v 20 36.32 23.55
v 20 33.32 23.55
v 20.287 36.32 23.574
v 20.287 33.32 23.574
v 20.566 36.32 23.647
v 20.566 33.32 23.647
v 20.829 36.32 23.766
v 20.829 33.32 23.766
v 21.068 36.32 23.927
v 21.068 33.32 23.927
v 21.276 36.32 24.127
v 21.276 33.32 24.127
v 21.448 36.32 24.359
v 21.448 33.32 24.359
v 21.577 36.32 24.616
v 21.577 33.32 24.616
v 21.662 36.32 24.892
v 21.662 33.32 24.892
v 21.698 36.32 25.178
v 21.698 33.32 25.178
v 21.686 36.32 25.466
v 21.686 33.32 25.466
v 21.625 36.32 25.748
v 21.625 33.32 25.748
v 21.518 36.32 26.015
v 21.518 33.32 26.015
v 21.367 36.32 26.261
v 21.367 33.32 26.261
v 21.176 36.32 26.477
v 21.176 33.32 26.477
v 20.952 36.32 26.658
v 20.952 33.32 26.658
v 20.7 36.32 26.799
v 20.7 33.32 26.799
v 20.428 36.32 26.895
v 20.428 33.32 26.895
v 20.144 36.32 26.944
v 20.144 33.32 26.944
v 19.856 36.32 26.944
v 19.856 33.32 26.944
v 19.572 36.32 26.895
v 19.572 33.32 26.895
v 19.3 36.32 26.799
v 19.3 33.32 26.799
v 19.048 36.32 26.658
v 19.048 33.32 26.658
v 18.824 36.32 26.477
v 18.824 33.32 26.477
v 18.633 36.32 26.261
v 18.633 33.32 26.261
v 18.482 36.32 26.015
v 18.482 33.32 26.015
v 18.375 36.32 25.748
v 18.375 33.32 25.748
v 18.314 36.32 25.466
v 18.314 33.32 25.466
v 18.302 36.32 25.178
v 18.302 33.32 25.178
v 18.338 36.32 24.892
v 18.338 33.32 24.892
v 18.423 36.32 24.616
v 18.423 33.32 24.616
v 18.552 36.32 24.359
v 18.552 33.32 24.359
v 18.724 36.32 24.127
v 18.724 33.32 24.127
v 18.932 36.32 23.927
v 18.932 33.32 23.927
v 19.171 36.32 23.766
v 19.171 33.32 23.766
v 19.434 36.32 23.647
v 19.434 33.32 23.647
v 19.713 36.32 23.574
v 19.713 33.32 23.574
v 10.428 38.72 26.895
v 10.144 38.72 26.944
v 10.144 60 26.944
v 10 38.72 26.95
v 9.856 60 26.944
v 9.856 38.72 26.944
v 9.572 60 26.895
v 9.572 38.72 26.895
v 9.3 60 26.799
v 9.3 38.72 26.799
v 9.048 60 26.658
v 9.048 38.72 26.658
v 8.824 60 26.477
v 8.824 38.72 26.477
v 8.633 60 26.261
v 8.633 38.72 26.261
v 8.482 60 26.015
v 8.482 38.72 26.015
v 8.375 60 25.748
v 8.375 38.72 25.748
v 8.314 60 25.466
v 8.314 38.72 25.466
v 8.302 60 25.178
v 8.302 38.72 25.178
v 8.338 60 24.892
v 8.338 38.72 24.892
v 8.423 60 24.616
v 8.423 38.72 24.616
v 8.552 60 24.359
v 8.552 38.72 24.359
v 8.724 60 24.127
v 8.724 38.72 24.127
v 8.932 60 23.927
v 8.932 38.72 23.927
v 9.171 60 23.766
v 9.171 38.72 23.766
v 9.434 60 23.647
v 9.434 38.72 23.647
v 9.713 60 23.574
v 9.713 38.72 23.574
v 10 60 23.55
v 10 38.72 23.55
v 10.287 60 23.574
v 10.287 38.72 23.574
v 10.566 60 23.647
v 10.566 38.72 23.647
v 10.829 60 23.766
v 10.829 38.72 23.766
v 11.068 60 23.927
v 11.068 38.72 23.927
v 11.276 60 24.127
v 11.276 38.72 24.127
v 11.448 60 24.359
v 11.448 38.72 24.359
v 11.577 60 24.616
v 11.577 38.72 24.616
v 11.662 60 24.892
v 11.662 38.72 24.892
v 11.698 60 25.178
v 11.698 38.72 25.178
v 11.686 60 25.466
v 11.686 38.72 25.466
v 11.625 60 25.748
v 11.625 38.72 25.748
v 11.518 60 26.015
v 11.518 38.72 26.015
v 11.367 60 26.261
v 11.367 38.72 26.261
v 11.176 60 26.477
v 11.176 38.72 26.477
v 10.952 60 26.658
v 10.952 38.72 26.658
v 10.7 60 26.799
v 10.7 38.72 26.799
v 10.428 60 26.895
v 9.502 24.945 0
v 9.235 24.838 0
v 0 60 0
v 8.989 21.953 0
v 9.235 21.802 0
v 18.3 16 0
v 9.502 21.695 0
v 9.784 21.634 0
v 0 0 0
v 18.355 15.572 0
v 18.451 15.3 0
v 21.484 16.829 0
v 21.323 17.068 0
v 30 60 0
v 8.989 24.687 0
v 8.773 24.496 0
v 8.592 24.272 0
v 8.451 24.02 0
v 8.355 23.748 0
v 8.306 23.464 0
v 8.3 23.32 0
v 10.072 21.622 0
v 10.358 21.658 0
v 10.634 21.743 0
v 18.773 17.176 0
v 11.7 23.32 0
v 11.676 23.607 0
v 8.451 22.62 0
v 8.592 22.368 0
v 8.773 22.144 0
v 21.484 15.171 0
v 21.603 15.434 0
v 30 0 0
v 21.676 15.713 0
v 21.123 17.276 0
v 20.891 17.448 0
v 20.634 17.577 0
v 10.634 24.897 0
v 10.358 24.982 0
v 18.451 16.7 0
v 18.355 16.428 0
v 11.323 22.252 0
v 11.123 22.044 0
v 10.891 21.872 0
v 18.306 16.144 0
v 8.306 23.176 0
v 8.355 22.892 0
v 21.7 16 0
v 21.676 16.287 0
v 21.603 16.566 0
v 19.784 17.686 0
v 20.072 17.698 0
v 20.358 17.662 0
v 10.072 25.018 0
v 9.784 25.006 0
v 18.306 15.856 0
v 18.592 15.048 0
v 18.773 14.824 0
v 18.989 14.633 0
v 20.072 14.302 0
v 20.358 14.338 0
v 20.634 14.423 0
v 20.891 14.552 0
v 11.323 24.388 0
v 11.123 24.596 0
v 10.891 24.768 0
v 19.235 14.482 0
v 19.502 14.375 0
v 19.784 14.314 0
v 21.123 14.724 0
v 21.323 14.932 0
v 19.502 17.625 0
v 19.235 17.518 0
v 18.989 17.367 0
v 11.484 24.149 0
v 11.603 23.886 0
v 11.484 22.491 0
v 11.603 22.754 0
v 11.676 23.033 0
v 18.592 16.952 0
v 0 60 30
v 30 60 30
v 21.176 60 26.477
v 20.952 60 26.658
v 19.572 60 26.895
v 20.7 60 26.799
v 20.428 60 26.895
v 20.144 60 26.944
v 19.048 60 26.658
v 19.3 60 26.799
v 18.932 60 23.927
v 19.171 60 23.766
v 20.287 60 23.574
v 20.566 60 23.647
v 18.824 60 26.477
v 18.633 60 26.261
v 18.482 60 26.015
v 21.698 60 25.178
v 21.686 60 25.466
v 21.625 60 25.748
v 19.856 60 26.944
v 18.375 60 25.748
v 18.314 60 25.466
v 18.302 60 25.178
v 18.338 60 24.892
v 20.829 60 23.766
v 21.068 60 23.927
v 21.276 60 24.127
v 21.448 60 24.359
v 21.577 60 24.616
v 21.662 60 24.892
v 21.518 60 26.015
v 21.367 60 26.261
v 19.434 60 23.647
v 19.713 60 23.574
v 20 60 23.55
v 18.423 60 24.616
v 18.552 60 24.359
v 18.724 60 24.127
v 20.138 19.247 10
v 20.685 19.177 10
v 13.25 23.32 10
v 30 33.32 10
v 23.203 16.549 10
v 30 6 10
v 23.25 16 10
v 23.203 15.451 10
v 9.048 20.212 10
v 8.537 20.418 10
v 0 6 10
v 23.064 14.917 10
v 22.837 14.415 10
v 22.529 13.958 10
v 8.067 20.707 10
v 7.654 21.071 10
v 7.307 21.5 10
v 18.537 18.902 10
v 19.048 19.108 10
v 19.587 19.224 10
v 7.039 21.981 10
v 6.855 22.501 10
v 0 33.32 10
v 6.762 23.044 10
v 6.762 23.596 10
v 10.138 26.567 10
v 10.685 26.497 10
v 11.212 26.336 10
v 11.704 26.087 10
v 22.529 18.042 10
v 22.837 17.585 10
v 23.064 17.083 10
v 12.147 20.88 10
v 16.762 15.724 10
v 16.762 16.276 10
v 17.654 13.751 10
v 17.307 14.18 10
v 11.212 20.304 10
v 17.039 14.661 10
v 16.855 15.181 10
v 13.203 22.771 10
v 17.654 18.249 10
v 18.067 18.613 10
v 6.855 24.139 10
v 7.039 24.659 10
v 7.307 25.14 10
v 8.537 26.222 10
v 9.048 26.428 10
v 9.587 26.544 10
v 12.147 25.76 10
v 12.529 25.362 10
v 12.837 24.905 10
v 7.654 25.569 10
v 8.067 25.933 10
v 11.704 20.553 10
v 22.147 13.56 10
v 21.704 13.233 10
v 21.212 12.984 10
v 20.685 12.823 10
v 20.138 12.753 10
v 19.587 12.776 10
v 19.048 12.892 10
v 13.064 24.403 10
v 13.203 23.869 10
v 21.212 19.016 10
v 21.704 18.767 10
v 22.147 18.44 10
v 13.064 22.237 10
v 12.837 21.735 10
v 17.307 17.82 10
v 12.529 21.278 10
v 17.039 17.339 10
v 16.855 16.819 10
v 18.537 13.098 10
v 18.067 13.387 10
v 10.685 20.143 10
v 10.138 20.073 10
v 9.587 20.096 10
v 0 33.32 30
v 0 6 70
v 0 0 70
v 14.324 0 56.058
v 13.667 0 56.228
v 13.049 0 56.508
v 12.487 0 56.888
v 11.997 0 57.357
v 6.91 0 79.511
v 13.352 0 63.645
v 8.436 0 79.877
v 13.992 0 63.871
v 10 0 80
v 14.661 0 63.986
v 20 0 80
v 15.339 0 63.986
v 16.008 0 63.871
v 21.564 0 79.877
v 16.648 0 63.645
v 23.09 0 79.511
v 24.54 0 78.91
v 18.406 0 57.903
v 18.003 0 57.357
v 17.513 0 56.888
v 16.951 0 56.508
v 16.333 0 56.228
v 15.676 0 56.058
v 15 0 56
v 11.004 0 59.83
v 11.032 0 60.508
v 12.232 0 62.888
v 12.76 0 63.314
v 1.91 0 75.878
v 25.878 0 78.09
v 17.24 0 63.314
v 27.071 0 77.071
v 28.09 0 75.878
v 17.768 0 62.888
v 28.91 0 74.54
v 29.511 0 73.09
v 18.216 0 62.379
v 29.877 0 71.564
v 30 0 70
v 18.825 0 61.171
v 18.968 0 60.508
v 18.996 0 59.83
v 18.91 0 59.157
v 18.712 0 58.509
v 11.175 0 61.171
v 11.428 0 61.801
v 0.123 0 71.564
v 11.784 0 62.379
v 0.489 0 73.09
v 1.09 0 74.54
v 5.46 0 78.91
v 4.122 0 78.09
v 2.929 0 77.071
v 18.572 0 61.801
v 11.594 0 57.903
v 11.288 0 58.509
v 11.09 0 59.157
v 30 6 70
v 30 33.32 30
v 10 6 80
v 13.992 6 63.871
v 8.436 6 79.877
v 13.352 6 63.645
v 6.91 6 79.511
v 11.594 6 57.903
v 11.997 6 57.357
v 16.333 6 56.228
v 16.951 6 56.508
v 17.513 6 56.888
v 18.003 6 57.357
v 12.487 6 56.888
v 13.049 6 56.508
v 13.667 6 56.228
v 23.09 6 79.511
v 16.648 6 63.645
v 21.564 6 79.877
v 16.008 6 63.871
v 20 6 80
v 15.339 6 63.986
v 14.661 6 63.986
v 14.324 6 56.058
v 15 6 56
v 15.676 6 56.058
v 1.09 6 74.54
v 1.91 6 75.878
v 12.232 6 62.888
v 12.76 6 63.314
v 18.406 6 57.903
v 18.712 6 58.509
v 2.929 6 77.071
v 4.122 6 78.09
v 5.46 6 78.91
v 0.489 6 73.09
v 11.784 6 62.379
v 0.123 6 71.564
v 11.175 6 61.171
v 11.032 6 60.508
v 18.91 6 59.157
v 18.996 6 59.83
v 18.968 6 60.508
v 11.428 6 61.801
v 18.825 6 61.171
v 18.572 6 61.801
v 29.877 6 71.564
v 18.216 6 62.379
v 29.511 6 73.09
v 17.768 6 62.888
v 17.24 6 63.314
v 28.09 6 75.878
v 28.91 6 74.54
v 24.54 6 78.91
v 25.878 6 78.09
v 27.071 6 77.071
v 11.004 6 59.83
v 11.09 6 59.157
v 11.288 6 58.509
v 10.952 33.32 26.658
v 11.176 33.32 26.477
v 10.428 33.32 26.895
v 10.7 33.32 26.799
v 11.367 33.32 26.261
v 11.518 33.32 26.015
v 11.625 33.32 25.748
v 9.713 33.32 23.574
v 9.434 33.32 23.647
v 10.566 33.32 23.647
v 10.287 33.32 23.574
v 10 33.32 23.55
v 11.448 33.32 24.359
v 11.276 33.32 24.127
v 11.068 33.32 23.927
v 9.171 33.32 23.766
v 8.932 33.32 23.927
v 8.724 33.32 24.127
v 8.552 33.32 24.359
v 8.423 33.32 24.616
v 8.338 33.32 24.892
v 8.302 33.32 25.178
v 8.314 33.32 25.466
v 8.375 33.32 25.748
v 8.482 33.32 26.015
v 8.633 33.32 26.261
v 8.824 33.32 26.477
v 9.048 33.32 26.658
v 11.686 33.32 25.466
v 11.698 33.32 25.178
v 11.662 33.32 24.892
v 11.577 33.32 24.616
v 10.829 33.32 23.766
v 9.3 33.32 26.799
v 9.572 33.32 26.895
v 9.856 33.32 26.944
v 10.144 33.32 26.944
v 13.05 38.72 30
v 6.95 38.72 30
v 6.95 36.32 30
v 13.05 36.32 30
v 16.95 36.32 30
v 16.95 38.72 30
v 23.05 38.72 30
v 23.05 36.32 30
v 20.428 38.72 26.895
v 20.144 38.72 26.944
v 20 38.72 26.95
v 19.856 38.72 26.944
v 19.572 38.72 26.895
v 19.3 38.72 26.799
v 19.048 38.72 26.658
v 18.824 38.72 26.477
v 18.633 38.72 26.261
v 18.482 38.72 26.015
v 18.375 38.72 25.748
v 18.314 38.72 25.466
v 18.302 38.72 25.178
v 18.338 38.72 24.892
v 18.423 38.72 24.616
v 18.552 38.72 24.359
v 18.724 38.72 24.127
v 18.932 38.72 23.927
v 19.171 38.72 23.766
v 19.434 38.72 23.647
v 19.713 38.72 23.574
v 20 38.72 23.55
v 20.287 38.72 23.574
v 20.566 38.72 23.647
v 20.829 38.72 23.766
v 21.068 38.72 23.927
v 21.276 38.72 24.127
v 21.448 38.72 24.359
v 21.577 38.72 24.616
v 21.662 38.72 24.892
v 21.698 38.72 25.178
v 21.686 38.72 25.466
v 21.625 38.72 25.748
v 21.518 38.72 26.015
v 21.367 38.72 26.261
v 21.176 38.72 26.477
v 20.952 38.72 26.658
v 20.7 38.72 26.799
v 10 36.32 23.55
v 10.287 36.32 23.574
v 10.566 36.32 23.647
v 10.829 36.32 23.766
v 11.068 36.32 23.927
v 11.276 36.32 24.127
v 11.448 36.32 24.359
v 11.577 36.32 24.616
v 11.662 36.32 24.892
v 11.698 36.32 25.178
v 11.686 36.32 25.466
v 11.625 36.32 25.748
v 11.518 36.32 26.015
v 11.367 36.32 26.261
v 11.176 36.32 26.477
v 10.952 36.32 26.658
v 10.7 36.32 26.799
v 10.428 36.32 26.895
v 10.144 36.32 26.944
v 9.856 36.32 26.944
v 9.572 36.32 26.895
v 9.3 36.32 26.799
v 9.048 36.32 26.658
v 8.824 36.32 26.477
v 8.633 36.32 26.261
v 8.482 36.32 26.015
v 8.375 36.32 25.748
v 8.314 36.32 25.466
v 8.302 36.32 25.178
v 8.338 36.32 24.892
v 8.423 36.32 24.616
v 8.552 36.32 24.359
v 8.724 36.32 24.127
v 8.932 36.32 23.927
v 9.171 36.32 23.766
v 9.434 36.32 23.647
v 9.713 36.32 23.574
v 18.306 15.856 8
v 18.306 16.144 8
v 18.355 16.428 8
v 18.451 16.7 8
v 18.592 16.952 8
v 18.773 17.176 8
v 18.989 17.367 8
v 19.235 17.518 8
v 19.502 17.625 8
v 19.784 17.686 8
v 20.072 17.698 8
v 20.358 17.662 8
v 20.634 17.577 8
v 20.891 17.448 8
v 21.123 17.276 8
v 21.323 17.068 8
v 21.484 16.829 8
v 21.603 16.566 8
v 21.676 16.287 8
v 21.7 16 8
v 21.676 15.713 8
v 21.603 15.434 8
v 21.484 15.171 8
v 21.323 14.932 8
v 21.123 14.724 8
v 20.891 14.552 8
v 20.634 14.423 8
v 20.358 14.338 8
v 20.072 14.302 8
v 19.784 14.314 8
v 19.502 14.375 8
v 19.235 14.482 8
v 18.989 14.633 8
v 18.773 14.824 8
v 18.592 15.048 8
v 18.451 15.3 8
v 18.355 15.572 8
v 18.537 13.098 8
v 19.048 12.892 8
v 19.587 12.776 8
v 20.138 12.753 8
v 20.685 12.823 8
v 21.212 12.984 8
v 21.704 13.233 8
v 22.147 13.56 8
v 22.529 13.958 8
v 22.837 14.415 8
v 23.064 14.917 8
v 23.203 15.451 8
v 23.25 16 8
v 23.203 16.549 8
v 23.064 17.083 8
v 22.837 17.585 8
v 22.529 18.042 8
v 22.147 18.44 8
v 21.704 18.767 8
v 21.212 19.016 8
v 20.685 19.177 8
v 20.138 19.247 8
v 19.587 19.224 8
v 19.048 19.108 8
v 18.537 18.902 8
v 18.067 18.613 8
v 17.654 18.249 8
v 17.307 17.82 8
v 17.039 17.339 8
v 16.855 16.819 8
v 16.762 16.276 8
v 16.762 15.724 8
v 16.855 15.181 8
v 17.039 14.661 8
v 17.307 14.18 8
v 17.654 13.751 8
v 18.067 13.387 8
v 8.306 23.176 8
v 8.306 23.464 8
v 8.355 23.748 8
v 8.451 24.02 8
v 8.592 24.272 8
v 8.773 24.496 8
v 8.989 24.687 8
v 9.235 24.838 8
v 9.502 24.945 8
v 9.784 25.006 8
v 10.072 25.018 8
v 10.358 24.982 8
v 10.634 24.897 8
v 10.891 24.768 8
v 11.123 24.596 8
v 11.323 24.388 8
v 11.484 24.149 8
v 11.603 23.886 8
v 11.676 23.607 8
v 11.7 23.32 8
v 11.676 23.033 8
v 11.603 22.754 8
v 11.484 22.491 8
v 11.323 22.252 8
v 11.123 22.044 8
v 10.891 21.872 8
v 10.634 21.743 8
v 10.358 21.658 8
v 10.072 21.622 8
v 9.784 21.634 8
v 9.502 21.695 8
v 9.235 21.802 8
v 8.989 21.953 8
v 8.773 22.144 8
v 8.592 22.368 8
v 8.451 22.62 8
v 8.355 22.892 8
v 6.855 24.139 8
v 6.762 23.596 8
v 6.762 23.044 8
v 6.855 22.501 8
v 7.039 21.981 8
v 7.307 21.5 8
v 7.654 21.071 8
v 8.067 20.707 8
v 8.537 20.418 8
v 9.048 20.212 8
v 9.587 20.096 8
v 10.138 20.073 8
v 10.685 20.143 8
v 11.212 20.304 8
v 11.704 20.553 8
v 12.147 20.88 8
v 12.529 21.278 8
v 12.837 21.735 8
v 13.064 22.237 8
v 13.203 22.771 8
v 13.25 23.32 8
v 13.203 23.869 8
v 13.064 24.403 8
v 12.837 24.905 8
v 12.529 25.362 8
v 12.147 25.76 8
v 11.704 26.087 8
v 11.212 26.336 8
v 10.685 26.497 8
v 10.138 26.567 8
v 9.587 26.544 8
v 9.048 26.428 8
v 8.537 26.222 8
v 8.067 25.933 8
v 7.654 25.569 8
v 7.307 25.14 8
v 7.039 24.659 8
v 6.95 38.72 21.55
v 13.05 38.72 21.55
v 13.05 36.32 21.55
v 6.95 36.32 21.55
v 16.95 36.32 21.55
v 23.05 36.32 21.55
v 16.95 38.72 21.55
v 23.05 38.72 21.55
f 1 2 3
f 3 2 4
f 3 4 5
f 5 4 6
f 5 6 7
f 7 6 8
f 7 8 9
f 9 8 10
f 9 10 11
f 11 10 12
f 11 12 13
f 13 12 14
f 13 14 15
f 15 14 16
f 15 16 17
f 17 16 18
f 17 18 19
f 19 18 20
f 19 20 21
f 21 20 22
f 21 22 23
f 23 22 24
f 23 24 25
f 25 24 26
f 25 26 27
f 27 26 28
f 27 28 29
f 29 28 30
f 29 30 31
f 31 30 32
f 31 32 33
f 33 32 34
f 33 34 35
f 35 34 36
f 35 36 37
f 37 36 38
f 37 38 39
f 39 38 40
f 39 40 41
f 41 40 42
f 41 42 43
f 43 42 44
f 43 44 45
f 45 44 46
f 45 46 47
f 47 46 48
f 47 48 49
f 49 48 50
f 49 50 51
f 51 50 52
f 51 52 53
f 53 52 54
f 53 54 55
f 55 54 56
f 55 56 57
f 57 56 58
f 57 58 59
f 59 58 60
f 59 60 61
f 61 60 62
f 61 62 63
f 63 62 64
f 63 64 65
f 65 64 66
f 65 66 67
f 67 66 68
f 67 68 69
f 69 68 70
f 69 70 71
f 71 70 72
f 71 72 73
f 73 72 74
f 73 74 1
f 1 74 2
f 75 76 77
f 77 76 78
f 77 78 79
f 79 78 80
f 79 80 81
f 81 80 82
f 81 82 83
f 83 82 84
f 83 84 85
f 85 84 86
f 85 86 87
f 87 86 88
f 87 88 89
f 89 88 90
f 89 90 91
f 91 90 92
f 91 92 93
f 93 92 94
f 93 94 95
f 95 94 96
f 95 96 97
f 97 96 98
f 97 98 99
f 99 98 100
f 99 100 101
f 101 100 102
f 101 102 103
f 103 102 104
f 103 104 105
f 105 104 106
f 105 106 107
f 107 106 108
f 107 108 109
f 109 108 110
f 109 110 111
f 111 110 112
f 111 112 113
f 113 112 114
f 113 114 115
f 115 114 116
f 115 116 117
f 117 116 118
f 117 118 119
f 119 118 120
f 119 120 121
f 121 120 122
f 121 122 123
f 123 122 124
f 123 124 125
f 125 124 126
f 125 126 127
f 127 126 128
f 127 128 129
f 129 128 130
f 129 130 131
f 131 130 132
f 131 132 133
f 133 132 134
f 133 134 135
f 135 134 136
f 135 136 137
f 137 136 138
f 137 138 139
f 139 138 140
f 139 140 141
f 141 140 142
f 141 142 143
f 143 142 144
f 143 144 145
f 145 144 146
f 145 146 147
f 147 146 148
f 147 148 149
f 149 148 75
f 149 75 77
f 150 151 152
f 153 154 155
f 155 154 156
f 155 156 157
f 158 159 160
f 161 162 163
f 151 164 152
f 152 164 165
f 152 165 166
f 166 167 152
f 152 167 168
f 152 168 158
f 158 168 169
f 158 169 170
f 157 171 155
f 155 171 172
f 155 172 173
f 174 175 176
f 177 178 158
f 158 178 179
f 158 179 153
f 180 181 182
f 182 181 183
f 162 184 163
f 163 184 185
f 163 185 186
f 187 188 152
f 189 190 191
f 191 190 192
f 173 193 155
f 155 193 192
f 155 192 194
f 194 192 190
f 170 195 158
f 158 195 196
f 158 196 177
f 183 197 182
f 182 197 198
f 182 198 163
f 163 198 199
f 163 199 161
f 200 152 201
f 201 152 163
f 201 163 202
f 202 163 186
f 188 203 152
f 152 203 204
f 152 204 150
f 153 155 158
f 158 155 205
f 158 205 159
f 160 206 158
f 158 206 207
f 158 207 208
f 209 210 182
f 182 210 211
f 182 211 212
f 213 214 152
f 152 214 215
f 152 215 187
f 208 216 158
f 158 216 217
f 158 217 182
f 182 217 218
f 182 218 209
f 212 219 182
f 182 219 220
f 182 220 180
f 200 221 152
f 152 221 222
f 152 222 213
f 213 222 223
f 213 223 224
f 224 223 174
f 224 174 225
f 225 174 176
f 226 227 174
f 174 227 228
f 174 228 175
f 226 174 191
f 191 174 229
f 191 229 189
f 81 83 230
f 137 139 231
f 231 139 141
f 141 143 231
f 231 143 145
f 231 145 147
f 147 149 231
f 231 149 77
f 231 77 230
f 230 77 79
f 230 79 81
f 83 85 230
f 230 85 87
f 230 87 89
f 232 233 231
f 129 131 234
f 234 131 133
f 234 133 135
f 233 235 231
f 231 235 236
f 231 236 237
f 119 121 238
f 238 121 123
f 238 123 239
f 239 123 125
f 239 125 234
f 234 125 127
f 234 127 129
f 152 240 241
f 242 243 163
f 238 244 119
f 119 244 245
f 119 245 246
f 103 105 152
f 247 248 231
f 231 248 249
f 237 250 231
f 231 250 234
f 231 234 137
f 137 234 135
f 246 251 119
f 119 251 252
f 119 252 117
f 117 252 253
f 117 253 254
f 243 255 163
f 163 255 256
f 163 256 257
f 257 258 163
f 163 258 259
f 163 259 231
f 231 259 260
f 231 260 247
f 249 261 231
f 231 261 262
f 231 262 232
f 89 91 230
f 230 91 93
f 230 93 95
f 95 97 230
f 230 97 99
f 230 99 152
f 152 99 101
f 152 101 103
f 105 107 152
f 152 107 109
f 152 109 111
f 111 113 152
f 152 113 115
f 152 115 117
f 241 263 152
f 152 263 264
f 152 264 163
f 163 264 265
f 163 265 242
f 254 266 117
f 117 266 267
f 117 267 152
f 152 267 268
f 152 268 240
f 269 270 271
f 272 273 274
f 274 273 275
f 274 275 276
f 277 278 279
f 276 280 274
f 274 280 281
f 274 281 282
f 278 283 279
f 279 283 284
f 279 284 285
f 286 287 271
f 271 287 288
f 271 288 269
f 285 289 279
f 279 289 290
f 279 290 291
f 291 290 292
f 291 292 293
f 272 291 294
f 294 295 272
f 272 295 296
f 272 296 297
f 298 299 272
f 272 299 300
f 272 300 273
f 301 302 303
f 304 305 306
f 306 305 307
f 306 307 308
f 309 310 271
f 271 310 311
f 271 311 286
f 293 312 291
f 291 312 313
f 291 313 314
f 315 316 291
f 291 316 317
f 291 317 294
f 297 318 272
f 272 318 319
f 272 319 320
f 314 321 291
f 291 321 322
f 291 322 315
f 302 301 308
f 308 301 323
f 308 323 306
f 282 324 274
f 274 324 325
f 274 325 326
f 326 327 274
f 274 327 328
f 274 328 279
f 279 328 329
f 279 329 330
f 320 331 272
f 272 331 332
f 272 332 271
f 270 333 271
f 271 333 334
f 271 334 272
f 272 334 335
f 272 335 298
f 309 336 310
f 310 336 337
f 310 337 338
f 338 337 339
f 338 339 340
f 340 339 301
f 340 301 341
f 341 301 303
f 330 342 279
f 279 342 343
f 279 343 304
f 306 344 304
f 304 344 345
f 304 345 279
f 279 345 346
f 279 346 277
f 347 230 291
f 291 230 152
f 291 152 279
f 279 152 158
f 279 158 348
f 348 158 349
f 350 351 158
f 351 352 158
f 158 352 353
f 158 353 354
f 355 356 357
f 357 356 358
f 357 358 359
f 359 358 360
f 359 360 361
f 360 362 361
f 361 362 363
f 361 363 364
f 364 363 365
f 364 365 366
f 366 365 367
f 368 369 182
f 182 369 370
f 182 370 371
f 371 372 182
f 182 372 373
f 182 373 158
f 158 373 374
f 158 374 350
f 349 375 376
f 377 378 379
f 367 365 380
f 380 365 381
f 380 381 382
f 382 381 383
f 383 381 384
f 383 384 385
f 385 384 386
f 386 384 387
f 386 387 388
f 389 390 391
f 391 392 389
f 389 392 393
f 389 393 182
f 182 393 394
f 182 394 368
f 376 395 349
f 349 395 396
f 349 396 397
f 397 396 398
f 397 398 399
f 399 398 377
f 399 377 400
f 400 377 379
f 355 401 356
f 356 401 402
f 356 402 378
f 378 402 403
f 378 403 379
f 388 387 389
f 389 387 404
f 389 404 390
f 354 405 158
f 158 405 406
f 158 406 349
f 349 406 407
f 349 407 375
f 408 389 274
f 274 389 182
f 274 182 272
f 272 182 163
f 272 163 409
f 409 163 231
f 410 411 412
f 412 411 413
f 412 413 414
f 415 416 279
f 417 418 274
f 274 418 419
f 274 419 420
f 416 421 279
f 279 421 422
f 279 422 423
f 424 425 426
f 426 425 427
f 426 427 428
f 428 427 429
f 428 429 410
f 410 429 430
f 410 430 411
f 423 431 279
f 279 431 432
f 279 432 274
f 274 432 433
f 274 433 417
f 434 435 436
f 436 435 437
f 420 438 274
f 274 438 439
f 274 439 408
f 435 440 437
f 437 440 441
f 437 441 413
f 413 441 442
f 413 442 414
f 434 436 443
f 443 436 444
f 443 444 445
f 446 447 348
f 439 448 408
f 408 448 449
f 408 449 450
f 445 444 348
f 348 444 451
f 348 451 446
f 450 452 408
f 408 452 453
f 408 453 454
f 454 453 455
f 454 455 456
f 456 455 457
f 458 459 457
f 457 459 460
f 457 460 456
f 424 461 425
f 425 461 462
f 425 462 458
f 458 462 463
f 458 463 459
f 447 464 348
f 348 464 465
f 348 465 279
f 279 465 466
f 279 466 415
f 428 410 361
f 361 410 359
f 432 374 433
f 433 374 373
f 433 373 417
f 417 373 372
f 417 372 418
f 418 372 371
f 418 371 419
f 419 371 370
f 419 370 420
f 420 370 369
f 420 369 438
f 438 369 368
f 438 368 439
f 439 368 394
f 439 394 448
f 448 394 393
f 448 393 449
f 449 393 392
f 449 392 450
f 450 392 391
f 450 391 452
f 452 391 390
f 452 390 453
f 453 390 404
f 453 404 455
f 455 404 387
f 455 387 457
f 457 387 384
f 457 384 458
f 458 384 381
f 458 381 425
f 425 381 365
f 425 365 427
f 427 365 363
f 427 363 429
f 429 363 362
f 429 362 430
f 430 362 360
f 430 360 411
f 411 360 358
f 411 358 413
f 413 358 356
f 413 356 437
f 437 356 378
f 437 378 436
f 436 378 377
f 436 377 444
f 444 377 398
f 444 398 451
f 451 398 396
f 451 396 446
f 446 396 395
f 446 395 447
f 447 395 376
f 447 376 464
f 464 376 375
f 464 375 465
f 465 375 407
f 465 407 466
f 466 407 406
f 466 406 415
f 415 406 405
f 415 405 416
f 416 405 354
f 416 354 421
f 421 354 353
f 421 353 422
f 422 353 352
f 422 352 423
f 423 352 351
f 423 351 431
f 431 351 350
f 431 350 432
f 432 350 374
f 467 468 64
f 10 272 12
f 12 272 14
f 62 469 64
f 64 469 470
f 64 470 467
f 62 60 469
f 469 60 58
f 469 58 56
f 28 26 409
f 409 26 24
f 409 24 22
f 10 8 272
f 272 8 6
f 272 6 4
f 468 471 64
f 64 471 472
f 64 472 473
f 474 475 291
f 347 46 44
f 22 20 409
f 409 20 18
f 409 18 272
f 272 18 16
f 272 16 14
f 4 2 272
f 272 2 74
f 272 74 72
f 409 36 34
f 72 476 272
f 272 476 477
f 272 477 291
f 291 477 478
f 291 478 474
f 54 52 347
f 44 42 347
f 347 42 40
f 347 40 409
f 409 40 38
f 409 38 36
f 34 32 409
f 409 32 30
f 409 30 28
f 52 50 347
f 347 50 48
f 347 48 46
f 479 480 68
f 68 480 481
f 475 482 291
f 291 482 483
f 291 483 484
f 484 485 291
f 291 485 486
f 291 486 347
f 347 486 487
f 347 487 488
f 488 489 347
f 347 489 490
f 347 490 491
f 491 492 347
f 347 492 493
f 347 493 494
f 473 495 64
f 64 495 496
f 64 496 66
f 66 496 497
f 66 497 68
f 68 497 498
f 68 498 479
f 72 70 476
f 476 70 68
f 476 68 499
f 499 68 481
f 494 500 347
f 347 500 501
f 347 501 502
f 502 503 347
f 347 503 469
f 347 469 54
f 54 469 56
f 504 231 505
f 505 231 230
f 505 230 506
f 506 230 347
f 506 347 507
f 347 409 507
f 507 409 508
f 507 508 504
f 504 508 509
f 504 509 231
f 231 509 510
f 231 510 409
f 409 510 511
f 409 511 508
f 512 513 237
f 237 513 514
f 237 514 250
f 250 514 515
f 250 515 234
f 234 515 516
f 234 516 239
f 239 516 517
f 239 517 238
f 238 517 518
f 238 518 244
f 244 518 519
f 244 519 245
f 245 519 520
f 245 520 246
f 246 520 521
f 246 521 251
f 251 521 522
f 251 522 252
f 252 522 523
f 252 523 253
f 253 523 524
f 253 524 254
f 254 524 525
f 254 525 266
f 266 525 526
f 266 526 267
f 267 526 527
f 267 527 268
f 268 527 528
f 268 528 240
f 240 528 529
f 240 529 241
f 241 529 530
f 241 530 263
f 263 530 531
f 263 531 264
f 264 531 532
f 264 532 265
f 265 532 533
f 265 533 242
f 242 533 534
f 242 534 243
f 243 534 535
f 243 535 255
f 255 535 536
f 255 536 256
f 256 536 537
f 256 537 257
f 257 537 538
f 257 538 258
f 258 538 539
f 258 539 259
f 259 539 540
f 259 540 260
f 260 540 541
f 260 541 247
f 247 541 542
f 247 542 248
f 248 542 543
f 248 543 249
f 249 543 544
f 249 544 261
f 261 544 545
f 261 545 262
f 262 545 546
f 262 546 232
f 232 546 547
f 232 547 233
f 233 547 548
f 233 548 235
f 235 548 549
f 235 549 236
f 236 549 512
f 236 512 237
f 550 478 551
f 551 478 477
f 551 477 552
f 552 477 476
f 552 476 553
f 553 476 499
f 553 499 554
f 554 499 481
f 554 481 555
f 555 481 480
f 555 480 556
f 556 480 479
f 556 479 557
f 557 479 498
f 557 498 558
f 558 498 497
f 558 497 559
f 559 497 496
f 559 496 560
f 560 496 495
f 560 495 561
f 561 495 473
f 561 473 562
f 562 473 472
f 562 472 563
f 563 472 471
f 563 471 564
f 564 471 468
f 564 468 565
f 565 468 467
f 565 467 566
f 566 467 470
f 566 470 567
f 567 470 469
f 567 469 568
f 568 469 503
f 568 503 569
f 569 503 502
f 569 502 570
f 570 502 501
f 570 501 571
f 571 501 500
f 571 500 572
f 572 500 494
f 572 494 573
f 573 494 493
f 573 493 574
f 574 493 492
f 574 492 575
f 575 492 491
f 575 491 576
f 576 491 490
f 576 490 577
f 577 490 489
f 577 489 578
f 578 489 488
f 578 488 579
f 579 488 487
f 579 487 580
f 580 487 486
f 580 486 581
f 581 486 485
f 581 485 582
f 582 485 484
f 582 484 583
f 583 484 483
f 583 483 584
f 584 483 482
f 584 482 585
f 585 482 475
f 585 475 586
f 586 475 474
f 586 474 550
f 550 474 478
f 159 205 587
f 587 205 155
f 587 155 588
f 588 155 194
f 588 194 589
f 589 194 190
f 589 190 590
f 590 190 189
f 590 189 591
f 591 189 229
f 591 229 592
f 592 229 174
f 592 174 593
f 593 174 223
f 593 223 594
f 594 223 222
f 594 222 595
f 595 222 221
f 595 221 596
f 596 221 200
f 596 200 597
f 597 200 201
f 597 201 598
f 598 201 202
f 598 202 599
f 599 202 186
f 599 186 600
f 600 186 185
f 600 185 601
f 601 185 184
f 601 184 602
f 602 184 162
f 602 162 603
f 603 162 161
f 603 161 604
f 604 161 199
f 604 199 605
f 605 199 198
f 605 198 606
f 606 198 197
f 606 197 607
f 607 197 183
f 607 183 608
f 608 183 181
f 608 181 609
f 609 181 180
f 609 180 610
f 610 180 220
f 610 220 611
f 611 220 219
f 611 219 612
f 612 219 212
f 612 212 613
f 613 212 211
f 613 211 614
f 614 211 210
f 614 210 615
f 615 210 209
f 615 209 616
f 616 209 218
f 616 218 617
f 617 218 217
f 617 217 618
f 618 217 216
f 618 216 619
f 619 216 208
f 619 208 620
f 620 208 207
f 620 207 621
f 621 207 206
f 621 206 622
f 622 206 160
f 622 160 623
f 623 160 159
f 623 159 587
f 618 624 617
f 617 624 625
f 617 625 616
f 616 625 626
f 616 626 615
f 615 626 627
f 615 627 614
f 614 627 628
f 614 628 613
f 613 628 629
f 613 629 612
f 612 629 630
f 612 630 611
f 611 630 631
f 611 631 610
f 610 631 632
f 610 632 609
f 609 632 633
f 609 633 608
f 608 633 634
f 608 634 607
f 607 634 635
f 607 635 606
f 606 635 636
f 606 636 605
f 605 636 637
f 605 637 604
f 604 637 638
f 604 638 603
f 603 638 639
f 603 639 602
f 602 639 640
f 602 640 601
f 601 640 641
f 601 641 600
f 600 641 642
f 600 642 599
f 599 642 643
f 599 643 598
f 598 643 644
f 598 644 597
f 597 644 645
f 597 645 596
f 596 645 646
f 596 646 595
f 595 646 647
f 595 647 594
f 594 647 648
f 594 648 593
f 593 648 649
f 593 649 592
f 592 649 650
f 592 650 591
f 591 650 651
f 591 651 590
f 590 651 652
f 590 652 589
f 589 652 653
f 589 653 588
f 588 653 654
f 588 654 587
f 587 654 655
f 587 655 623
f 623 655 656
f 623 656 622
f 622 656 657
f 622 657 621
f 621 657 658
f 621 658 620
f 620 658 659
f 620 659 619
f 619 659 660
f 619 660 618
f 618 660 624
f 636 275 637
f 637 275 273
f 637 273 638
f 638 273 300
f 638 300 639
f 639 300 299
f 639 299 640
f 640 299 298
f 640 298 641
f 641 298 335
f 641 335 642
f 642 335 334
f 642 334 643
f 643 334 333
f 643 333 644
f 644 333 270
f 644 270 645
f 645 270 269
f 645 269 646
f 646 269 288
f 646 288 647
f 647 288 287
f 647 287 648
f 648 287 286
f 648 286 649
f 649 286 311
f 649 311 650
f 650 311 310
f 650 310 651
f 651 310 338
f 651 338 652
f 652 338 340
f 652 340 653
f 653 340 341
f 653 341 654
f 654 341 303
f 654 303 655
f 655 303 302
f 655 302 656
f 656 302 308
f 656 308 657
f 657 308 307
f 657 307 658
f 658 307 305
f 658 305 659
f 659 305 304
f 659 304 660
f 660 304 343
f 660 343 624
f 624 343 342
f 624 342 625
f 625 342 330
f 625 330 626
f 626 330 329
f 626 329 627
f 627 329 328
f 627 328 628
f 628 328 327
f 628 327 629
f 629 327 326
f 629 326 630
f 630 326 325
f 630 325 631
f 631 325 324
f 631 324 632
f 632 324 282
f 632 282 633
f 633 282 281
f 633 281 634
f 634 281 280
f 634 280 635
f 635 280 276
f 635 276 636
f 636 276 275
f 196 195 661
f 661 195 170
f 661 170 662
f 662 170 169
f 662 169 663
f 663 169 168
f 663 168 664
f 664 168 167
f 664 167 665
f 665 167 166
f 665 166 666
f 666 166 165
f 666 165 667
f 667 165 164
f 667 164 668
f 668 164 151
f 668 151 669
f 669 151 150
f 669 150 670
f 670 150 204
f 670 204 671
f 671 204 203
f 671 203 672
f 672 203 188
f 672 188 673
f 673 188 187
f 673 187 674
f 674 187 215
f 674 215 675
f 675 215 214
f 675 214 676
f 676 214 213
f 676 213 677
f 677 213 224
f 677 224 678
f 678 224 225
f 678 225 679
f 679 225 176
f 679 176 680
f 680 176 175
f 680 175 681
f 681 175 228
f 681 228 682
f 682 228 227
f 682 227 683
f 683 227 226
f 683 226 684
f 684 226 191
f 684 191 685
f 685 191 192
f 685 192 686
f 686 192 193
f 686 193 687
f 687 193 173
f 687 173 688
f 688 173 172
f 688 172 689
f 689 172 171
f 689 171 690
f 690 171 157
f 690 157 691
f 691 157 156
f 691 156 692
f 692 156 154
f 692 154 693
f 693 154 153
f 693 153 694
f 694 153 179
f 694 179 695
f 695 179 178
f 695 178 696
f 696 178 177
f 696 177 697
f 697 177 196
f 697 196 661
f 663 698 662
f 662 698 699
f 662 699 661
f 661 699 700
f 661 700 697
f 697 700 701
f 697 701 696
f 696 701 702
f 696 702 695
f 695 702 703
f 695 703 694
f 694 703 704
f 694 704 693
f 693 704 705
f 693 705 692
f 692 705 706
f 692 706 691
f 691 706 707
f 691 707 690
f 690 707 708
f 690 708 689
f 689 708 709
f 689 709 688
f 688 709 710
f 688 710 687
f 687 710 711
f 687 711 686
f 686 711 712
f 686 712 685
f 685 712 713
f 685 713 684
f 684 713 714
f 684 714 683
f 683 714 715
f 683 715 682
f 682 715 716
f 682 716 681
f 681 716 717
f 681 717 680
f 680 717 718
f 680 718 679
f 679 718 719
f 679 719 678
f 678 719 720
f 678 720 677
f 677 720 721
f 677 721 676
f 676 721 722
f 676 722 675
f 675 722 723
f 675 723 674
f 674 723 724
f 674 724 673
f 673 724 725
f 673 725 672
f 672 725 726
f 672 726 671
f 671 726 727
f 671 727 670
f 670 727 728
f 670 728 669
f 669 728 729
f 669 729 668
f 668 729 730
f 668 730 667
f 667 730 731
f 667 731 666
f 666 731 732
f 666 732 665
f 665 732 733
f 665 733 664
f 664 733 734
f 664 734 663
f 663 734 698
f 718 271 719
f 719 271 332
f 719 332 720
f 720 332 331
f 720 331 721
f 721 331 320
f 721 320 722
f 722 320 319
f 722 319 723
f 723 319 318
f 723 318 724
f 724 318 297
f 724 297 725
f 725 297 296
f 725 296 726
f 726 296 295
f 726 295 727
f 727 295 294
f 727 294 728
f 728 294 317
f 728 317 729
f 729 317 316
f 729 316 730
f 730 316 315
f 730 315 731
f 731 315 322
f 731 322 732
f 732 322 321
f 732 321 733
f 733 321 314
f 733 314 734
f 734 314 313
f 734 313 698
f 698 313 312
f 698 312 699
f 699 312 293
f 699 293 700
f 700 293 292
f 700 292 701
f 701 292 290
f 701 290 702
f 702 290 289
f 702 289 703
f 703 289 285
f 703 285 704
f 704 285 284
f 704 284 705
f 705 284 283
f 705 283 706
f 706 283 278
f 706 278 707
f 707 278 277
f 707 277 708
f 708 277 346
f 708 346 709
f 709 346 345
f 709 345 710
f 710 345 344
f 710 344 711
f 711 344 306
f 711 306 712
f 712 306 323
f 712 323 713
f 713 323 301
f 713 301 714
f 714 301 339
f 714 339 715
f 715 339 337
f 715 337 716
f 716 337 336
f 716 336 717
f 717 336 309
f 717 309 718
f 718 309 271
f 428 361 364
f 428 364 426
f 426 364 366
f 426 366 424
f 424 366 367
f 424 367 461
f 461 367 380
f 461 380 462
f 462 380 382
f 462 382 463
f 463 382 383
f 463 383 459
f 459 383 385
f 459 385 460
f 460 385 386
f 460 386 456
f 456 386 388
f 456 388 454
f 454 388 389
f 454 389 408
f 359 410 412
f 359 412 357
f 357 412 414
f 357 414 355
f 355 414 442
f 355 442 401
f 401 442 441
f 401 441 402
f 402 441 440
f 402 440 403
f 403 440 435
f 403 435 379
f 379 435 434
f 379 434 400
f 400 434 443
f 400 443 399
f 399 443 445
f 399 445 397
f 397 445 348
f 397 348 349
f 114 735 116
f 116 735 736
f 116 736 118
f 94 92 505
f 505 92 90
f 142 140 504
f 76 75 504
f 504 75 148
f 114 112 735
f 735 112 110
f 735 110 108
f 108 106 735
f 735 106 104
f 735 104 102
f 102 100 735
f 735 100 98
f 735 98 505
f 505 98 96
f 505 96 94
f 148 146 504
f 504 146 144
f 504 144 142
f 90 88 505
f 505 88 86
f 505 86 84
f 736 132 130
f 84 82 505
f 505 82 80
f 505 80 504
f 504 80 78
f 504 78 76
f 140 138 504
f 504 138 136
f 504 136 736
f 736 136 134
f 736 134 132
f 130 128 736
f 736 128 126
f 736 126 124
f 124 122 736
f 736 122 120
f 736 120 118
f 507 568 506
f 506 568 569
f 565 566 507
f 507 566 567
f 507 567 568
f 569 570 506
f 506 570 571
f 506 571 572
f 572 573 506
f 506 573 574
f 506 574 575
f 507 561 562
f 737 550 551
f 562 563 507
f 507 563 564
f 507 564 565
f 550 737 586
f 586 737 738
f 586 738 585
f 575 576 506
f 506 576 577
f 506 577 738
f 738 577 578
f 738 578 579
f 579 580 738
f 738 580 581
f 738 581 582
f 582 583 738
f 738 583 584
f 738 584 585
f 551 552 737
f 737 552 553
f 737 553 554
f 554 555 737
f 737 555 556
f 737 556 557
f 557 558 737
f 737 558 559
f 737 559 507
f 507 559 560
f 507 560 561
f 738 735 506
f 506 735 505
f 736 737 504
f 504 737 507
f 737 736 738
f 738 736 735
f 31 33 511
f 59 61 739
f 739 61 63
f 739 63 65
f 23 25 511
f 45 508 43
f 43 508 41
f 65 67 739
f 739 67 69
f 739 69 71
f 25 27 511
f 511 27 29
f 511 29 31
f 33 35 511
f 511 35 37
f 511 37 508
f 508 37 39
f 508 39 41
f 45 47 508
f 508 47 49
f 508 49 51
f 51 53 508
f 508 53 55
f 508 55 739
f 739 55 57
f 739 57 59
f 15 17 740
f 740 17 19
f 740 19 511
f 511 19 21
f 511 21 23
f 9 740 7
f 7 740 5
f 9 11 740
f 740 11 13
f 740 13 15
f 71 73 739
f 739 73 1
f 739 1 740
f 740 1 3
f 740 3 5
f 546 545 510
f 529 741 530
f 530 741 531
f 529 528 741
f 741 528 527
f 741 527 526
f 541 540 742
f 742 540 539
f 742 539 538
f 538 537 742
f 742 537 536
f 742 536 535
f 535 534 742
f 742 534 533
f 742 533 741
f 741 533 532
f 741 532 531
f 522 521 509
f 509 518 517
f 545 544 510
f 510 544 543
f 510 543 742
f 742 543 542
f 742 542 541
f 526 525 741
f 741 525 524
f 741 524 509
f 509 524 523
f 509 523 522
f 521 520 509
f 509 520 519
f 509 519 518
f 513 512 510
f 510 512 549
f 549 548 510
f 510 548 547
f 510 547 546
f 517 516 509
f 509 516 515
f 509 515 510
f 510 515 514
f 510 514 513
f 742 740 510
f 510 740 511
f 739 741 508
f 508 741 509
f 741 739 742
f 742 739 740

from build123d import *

# Parameters (mm, degrees)
ESQUISSE1_W                                          = 30
ESQUISSE1_H                                          = 60
BOSS_EXTRU_1_DEPTH                                   = 10
ESQUISSE2_W                                          = 30
ESQUISSE2_H                                          = 6
BOSS_EXTRU_2_DEPTH                                   = 70
ESQUISSE3_R                                          = 4
ENL_V_MAT_EXTRU_1_DEPTH                              = 6
ESQUISSE4_W                                          = 30
ESQUISSE4_H                                          = 26.68
BOSS_EXTRU_3_DEPTH                                   = 20
D_GAGEMENT_M31_D                                     = 3.4
D_GAGEMENT_M31_DEPTH                                 = 26.68
D_GAGEMENT_M31_TIP                                   = 1.021463052
CHAMBRAGE_POUR_T_TE_CYLINDRIQUE_FENDUE_M_D           = 3.4
CHAMBRAGE_POUR_T_TE_CYLINDRIQUE_FENDUE_M_DEPTH       = 10
CHAMBRAGE_POUR_T_TE_CYLINDRIQUE_FENDUE_M_CBORE_D     = 6.5
CHAMBRAGE_POUR_T_TE_CYLINDRIQUE_FENDUE_M_CBORE_DEPTH = 2
CHAMBRAGE_POUR_T_TE_CYLINDRIQUE_FENDUE_M_TIP         = 1.021463052
CONG_1_R                                             = 10
ESQUISSE13_W                                         = 6.1
ESQUISSE13_H                                         = 2.4
ENL_V_MAT_EXTRU_2_DEPTH                              = 8.45


with BuildPart() as part:
    # Esquisse1 → Boss.-Extru.1 (new body)
    with BuildSketch(Plane.XY):
        with Locations((15, 30)):
            Rectangle(ESQUISSE1_W, ESQUISSE1_H)
    extrude(amount=BOSS_EXTRU_1_DEPTH)

    # Esquisse2 → Boss.-Extru.2 (add)
    with BuildSketch(Plane.XY.offset(10)):
        with Locations((15, 3)):
            Rectangle(ESQUISSE2_W, ESQUISSE2_H)
    extrude(amount=BOSS_EXTRU_2_DEPTH)

    # Esquisse3 → Enlèv. mat.-Extru.1 (cut)
    with BuildSketch(Plane.XZ):
        with Locations(Location((15, 60, 0), (0, 0, 270))):
            Circle(ESQUISSE3_R)
    extrude(amount=-ENL_V_MAT_EXTRU_1_DEPTH, mode=Mode.SUBTRACT)

    # Esquisse4 → Boss.-Extru.3 (add)
    with BuildSketch(Plane.XY.offset(10)):
        with Locations((15, 46.66)):
            Rectangle(ESQUISSE4_W, ESQUISSE4_H)
    extrude(amount=BOSS_EXTRU_3_DEPTH)

    # Dégagement M31
    with Locations(Plane(origin=(0, 33.32, 0), x_dir=(-1, 0, 0), z_dir=(0, -1, 0))):
        with Locations((-10, -25.25), (-20, -25.25)):
            Hole(D_GAGEMENT_M31_D / 2, depth=D_GAGEMENT_M31_DEPTH)
            with Locations((0, 0, -(D_GAGEMENT_M31_DEPTH + D_GAGEMENT_M31_TIP / 2))):  # 118° drill point
                Cone(0, D_GAGEMENT_M31_D / 2, D_GAGEMENT_M31_TIP, mode=Mode.SUBTRACT)

    # Chambrage pour tête cylindrique fendue M31
    with Locations(Plane.XY.offset(10)):
        with Locations((10, 23.32), (20, 16)):
            CounterBoreHole(CHAMBRAGE_POUR_T_TE_CYLINDRIQUE_FENDUE_M_D / 2, CHAMBRAGE_POUR_T_TE_CYLINDRIQUE_FENDUE_M_CBORE_D / 2, CHAMBRAGE_POUR_T_TE_CYLINDRIQUE_FENDUE_M_CBORE_DEPTH, depth=CHAMBRAGE_POUR_T_TE_CYLINDRIQUE_FENDUE_M_DEPTH)
            with Locations((0, 0, -(CHAMBRAGE_POUR_T_TE_CYLINDRIQUE_FENDUE_M_DEPTH + CHAMBRAGE_POUR_T_TE_CYLINDRIQUE_FENDUE_M_TIP / 2))):  # 118° drill point
                Cone(0, CHAMBRAGE_POUR_T_TE_CYLINDRIQUE_FENDUE_M_D / 2, CHAMBRAGE_POUR_T_TE_CYLINDRIQUE_FENDUE_M_TIP, mode=Mode.SUBTRACT)

    # Congé1
    cong_1_edges = [part.edges().sort_by_distance(p)[0] for p in [
        (30, 3, 80),
        (0, 3, 80),
    ]]
    fillet(cong_1_edges, radius=CONG_1_R)

    # Esquisse13 → Enlèv. mat.-Extru.2 (cut)
    with BuildSketch(Plane.XY.offset(30)):
        with Locations((10, 37.52)):
            Rectangle(ESQUISSE13_W, ESQUISSE13_H)
        with Locations((20, 37.52)):
            Rectangle(ESQUISSE13_W, ESQUISSE13_H)
    extrude(amount=-ENL_V_MAT_EXTRU_2_DEPTH, mode=Mode.SUBTRACT)


solid = part.part
